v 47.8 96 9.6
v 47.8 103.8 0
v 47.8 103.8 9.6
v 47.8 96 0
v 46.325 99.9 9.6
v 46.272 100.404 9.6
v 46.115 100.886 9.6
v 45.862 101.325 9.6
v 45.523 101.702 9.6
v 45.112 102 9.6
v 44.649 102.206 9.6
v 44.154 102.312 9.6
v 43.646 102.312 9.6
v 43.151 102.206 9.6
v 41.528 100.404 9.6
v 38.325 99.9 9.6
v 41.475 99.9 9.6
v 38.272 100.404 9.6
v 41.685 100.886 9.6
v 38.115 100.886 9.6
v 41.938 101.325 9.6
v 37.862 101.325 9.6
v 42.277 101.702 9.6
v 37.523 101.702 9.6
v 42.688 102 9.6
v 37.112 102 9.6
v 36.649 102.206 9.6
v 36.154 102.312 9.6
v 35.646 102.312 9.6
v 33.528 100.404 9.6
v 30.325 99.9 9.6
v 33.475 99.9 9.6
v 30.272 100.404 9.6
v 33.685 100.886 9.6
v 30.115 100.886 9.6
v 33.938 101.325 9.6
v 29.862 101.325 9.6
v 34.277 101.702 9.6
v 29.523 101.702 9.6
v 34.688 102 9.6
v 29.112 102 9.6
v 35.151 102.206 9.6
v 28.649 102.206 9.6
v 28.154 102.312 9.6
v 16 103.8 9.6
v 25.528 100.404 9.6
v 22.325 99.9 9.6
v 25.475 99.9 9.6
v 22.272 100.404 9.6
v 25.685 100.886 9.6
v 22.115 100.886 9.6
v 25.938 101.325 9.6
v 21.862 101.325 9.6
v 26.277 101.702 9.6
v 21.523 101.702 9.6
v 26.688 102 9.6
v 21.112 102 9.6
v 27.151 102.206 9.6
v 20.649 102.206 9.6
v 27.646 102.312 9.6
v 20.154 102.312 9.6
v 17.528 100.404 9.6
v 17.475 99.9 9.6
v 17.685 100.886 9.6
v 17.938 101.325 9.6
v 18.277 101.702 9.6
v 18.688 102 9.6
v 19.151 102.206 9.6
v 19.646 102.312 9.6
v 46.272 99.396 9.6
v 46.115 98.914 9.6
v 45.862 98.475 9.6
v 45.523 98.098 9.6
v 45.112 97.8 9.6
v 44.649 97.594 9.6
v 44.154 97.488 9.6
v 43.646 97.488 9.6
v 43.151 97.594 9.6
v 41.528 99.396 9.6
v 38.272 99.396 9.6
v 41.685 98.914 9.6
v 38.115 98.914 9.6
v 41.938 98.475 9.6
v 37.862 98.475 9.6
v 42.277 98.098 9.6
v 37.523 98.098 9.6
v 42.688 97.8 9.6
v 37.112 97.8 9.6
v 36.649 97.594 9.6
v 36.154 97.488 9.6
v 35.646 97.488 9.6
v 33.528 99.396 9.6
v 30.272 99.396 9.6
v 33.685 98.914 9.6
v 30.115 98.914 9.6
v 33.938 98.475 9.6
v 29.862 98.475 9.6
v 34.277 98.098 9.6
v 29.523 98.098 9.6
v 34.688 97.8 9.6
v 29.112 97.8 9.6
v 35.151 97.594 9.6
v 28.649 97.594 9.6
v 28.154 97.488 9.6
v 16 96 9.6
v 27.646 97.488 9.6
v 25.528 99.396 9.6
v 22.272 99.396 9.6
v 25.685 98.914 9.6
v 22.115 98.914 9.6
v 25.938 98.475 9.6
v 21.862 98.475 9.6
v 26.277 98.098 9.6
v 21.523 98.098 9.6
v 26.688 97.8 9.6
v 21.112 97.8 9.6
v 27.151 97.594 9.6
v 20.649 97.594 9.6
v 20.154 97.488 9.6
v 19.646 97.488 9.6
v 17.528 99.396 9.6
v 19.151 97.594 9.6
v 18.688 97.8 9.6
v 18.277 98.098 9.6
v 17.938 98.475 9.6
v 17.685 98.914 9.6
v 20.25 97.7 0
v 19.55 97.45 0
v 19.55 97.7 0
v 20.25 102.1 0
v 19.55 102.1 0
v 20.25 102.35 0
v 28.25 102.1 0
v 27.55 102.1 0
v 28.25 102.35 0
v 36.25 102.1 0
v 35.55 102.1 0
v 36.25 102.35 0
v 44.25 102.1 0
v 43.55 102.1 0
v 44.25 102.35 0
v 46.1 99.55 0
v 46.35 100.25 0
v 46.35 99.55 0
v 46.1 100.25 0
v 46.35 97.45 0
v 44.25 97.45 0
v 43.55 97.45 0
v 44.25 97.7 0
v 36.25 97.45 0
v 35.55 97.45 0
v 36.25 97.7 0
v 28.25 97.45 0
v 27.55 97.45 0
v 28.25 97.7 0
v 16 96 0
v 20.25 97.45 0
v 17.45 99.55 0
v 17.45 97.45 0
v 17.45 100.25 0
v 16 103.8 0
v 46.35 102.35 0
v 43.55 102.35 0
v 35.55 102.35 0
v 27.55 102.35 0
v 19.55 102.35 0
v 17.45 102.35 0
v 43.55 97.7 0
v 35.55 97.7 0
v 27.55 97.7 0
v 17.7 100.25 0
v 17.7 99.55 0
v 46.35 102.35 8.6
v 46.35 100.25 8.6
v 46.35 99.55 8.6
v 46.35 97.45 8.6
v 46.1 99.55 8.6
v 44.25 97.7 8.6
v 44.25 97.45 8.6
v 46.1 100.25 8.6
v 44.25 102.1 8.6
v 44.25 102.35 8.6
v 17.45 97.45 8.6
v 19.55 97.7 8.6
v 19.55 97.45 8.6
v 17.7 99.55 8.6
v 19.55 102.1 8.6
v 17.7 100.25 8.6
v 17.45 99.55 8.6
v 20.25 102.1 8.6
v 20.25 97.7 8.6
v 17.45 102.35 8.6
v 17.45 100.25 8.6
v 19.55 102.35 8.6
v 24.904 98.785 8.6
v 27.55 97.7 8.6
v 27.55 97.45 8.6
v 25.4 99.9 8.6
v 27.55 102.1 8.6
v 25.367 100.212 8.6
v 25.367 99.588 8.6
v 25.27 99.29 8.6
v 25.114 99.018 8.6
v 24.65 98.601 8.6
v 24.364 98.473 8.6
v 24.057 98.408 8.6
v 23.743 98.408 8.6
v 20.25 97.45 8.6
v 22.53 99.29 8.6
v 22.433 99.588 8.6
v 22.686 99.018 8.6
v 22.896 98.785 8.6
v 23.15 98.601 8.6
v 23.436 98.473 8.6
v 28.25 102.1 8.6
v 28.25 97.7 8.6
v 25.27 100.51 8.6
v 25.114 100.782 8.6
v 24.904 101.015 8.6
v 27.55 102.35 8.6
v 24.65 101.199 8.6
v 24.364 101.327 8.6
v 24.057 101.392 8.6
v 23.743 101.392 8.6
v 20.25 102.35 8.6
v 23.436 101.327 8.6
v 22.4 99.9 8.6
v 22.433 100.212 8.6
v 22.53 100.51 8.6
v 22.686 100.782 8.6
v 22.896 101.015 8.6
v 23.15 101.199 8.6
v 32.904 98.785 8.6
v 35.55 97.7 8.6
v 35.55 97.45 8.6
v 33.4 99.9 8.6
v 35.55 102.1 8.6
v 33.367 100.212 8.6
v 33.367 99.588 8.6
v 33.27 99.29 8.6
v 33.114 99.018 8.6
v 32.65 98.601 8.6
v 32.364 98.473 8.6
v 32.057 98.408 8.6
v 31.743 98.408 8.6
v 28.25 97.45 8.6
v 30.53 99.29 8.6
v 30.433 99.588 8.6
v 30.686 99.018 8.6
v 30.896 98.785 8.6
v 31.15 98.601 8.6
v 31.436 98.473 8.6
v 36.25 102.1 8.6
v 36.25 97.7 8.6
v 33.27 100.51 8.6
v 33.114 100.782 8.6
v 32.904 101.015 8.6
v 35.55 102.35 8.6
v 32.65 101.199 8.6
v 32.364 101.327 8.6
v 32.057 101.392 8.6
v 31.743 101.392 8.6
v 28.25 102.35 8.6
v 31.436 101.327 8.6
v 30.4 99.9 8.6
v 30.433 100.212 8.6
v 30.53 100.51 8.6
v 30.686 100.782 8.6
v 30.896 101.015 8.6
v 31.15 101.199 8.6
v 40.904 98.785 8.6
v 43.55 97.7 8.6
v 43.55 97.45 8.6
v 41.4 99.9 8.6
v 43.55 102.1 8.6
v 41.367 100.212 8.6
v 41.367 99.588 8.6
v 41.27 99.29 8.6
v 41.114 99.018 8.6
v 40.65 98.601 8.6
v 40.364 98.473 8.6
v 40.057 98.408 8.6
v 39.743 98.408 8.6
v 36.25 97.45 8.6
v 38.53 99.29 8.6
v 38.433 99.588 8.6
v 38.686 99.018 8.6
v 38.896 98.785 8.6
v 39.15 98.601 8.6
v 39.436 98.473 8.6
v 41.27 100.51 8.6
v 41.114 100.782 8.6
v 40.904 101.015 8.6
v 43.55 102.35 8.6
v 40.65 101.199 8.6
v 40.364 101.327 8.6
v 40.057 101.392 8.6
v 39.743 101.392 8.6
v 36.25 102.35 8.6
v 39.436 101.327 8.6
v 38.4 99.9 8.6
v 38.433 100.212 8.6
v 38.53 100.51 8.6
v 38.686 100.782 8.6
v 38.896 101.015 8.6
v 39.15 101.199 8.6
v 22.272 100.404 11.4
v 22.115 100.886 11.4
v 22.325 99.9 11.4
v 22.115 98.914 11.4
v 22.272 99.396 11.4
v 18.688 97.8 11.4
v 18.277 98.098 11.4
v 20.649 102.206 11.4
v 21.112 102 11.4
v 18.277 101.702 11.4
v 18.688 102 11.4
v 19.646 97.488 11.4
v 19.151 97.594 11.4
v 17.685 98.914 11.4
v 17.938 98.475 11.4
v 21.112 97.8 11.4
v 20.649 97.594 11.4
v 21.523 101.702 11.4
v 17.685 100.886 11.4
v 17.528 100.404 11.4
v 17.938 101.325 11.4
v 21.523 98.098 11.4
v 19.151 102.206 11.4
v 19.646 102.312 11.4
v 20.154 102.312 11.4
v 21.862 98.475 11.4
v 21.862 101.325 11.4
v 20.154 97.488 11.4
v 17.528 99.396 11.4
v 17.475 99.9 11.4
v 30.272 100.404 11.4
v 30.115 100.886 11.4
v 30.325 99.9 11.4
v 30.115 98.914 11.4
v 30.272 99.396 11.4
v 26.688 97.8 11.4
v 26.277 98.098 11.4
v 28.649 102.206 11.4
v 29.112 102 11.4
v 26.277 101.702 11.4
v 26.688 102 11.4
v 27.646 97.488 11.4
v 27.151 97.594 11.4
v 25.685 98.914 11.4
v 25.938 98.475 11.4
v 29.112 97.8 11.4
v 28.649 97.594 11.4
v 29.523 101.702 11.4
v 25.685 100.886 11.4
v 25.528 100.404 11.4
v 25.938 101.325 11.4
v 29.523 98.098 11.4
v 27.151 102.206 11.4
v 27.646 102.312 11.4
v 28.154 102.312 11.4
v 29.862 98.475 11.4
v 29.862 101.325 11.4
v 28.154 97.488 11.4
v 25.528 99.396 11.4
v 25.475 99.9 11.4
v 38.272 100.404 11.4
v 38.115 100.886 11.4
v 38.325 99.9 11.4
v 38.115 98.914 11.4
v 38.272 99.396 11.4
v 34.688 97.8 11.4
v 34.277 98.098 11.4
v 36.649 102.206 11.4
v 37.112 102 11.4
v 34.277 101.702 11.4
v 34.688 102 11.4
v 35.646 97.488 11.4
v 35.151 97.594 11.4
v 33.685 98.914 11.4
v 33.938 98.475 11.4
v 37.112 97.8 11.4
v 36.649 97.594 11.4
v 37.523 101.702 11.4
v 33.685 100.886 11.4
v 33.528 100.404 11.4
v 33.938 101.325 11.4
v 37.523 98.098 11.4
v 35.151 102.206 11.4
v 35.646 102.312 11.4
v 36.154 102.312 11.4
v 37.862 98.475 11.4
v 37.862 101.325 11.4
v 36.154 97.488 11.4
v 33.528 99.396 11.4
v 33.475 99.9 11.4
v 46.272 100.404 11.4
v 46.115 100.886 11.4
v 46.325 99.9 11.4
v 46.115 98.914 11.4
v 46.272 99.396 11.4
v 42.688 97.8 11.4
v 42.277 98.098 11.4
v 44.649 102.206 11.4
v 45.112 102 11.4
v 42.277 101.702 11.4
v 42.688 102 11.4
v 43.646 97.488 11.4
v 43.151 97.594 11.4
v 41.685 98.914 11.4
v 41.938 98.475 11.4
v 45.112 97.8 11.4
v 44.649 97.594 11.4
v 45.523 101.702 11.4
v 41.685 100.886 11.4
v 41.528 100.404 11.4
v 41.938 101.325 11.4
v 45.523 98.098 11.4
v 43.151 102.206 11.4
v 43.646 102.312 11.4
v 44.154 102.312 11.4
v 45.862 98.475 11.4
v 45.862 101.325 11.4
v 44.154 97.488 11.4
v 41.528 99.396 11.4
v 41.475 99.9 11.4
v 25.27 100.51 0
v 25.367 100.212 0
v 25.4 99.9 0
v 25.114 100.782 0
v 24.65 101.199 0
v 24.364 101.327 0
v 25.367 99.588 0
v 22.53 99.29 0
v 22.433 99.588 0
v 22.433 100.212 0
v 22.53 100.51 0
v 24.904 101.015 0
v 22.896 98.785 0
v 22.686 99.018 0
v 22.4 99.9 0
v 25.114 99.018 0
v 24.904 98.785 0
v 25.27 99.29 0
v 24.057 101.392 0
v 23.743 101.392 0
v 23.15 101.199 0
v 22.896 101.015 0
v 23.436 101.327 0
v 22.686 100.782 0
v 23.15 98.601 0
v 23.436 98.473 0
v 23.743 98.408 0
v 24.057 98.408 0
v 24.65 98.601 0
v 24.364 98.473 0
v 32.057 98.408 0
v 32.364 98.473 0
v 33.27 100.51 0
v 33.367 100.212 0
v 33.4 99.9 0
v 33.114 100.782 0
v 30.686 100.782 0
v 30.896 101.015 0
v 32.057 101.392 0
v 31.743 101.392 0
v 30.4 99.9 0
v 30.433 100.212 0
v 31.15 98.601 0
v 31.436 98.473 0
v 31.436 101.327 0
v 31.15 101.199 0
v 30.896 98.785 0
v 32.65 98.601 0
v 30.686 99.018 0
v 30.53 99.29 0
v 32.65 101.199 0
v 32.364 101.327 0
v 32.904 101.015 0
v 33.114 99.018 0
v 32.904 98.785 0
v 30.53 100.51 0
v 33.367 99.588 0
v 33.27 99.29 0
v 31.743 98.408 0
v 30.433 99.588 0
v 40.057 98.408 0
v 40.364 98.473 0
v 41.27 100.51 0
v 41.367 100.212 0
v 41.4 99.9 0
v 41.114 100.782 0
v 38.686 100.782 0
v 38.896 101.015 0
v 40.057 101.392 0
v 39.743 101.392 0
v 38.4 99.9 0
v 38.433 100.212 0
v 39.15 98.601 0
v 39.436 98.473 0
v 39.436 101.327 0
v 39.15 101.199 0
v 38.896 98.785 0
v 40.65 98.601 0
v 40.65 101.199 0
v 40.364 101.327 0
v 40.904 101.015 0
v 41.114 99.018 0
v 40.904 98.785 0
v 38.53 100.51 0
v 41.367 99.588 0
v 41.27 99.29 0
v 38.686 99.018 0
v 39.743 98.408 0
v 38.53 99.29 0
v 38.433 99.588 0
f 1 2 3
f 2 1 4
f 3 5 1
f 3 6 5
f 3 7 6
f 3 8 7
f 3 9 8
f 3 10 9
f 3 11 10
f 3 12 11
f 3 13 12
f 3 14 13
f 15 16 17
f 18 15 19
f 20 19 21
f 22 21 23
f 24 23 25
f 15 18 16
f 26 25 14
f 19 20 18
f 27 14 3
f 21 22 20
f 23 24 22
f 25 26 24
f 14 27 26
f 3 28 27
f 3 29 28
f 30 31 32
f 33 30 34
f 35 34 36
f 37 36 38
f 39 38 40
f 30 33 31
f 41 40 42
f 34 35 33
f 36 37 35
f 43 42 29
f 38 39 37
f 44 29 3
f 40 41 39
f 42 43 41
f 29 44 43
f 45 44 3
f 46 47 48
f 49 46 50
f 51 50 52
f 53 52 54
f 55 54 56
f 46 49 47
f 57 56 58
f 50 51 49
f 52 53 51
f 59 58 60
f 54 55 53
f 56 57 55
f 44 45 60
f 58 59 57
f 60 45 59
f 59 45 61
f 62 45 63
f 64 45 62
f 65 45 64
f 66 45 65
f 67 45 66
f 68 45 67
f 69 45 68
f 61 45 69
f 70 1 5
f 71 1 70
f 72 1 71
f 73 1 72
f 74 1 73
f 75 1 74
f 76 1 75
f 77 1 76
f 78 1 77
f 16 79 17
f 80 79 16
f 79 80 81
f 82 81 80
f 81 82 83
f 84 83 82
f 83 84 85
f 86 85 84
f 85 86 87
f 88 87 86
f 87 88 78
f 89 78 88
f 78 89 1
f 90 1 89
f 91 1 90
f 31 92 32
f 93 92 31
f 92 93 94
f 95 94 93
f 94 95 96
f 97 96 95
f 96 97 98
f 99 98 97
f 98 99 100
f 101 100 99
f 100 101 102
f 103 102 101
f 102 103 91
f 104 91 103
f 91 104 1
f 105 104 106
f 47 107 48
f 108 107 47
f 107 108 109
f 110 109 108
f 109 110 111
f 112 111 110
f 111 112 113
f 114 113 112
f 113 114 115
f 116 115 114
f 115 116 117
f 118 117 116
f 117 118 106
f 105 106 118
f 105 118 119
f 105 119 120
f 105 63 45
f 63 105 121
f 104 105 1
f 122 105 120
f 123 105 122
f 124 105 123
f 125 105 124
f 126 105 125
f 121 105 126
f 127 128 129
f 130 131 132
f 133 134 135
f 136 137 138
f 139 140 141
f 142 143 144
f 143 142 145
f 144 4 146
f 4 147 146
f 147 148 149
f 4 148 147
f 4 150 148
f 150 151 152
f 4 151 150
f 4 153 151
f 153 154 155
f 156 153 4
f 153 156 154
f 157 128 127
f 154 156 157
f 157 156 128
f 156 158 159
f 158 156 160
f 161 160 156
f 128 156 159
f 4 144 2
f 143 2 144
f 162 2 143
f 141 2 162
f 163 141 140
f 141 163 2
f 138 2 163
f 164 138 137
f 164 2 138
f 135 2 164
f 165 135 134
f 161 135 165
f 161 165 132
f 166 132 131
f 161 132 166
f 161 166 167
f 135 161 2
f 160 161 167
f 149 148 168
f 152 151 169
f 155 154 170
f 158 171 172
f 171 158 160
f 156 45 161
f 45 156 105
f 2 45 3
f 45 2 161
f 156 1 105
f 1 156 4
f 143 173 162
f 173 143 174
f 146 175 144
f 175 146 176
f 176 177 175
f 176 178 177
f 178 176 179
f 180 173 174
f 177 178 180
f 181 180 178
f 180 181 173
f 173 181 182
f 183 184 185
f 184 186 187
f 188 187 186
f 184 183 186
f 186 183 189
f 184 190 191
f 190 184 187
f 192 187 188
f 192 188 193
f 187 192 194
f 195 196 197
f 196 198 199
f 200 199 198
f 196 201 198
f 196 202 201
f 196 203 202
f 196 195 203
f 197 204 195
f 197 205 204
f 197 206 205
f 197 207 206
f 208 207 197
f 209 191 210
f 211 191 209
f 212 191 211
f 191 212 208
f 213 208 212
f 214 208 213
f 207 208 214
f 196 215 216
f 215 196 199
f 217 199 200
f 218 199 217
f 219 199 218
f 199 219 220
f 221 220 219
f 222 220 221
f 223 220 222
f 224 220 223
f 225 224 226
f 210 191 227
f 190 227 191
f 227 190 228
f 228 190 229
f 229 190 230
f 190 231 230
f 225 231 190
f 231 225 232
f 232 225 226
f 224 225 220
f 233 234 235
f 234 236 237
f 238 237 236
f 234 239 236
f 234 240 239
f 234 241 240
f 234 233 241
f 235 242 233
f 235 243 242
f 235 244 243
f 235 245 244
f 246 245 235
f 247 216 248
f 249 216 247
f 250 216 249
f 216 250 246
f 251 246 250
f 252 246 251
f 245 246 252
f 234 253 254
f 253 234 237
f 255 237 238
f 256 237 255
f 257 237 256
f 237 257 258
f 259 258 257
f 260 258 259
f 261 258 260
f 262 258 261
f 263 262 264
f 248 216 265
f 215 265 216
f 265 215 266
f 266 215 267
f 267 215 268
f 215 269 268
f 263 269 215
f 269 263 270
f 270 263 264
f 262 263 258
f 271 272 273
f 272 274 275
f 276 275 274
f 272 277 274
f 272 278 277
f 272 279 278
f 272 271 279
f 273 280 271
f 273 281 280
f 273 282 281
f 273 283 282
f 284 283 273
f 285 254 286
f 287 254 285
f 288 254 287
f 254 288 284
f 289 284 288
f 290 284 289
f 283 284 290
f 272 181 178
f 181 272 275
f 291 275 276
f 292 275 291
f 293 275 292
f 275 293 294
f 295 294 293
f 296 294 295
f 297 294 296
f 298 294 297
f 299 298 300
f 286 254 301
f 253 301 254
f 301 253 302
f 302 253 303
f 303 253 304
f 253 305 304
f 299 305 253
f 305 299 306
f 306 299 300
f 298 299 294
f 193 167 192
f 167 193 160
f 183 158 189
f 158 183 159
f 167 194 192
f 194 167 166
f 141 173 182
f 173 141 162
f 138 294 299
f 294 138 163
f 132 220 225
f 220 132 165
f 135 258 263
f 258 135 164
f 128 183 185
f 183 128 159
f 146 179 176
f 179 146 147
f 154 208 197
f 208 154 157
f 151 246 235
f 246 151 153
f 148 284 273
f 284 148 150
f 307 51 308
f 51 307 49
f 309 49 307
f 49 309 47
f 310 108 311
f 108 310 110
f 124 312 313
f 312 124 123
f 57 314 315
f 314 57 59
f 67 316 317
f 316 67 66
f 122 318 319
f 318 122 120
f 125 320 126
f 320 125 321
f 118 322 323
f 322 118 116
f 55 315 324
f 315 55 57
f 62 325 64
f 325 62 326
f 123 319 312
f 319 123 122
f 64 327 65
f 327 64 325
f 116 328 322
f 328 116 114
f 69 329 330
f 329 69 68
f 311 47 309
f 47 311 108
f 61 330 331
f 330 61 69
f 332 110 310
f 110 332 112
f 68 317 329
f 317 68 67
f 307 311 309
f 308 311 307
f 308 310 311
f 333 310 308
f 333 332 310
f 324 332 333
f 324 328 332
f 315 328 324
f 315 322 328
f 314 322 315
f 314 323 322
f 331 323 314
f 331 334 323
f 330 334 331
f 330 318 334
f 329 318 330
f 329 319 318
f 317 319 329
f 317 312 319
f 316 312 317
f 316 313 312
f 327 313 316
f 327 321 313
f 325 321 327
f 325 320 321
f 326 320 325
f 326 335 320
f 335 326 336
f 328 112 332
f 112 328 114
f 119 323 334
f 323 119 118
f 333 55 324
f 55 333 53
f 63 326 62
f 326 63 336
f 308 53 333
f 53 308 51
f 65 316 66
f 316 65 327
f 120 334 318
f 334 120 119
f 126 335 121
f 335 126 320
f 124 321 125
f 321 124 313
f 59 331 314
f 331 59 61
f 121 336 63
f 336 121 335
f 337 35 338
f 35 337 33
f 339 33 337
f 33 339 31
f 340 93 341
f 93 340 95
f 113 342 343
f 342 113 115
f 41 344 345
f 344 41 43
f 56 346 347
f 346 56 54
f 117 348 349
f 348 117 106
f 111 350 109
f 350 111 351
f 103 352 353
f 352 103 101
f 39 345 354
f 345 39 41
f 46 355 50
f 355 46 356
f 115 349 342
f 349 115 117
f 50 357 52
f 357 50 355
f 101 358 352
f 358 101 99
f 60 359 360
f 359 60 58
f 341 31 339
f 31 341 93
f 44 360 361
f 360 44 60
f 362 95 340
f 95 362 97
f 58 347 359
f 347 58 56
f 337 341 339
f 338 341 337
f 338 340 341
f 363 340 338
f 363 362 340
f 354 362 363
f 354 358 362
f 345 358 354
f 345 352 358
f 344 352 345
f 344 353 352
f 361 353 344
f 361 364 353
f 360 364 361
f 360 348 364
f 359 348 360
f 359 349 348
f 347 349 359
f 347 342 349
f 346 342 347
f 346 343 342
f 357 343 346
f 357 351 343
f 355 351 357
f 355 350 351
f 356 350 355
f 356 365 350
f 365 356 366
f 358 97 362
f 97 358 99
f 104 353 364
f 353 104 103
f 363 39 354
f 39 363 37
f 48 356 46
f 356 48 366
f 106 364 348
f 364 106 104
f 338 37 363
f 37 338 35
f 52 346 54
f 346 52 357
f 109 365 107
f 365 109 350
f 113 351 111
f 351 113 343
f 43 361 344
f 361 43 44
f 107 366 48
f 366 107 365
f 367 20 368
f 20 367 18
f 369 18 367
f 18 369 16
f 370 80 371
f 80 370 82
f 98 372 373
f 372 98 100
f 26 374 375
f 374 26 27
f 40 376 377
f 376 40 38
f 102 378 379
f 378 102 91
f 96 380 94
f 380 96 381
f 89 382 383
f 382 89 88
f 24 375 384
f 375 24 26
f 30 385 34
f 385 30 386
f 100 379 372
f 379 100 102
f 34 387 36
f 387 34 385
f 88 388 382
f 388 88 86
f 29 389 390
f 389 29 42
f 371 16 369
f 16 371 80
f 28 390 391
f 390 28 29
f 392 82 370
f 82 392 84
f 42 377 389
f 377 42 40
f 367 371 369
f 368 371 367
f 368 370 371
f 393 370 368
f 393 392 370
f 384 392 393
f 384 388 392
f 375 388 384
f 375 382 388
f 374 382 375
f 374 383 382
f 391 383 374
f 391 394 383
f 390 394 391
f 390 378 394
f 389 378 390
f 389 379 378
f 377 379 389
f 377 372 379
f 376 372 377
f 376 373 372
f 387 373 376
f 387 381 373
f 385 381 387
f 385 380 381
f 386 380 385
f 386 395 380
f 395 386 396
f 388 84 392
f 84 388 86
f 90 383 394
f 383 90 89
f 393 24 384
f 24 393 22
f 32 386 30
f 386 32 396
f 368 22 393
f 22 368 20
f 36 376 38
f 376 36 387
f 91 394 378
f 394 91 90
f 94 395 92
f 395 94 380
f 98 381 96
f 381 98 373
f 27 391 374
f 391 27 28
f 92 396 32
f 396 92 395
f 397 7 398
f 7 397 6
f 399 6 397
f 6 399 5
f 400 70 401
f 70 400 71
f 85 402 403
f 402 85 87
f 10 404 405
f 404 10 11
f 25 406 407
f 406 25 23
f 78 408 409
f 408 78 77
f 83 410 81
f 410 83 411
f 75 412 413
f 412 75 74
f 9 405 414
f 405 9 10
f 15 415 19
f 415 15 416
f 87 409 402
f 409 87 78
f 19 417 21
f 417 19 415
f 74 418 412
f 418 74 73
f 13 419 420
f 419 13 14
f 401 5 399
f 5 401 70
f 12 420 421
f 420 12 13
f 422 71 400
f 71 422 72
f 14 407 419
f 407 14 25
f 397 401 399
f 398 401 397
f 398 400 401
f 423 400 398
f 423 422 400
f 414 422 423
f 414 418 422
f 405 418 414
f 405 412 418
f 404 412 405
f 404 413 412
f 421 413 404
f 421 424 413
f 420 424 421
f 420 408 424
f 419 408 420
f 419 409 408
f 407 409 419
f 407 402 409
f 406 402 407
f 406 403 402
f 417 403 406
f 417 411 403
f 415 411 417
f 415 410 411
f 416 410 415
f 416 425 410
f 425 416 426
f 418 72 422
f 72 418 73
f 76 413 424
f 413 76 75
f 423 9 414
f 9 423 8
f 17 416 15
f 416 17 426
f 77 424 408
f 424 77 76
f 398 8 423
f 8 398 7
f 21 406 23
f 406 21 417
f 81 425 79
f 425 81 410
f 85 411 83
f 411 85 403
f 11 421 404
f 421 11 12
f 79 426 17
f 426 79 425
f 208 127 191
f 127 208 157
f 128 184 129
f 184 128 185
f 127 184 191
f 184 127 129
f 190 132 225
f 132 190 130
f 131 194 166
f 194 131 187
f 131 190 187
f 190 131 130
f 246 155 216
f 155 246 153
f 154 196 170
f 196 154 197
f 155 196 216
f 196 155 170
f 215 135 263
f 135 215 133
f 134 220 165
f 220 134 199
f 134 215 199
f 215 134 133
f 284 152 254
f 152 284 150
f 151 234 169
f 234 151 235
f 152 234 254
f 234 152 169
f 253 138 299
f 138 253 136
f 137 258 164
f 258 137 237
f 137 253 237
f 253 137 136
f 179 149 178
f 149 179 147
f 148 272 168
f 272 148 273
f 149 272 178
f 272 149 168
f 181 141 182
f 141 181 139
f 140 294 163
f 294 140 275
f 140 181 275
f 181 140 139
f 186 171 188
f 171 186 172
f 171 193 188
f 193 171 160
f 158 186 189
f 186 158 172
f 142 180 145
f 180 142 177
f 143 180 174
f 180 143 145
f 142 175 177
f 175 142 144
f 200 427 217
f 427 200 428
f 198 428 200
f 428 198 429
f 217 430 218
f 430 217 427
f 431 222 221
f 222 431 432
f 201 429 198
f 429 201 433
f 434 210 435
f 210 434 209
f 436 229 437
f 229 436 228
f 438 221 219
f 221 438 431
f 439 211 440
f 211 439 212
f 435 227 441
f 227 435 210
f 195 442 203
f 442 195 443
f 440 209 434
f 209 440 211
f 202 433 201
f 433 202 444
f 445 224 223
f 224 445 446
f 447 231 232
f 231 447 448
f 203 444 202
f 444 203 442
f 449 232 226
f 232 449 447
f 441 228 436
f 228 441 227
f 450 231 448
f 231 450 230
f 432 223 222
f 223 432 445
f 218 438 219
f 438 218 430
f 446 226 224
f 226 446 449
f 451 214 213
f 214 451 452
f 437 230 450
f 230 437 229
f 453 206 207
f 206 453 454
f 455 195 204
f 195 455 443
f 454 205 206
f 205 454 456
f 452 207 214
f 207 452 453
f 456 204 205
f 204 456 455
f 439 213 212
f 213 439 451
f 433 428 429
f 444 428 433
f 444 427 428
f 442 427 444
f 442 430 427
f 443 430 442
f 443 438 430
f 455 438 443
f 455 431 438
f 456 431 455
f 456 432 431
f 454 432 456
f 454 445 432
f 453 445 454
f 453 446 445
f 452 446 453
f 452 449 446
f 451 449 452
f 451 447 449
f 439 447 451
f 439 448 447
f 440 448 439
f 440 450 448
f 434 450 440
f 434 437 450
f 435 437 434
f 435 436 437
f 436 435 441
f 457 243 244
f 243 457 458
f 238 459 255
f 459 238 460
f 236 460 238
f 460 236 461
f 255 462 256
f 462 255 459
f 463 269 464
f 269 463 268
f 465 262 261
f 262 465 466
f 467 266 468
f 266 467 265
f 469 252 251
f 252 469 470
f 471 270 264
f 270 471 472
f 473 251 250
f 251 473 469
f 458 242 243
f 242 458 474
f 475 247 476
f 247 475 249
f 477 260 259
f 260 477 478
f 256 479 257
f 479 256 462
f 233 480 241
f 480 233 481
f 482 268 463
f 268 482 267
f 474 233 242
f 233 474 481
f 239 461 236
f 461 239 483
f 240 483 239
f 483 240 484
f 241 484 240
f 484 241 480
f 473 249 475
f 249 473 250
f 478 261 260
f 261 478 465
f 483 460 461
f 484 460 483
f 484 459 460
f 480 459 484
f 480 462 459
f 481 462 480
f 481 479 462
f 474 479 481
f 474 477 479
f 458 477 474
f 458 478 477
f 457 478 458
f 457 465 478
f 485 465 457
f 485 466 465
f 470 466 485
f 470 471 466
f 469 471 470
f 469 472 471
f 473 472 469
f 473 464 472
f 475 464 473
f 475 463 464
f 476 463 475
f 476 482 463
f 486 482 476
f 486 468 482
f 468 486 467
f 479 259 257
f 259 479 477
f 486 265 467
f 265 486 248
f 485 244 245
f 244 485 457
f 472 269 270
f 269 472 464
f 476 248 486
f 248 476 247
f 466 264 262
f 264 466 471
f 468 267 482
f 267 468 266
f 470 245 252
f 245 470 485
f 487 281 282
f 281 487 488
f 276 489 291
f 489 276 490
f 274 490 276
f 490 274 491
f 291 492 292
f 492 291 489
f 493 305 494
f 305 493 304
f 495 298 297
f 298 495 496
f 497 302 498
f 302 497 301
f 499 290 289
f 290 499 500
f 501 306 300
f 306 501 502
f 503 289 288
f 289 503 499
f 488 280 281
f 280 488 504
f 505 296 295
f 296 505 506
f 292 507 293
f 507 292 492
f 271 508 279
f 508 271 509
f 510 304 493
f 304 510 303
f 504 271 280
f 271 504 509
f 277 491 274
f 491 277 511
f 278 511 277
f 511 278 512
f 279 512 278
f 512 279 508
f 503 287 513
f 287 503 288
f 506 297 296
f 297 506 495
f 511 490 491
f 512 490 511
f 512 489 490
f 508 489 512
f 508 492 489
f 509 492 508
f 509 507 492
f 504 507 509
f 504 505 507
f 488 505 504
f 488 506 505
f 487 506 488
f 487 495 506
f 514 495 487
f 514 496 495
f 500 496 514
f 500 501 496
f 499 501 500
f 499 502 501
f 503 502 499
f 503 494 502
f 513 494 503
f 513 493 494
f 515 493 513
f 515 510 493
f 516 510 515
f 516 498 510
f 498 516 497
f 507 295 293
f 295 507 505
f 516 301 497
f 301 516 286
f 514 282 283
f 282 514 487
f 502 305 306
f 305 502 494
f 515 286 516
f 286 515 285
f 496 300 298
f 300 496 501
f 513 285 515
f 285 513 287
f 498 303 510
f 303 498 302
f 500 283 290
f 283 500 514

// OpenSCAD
// LEGO 3010 – Stein 1 x 4 (ohne Löcher)
// Gleicher Aufbau und Ursprung wie Technic_1×4_3701.scad, nur ohne Technic-Löcher.
// LEGO is a trademark of the LEGO Group.
include <LEGO.scad>;

color( "lightgray" ) place(12, 0, 0) uncenter(1, 8) block(
            width=1,
            length=4,
            horizontal_holes=false
        );
